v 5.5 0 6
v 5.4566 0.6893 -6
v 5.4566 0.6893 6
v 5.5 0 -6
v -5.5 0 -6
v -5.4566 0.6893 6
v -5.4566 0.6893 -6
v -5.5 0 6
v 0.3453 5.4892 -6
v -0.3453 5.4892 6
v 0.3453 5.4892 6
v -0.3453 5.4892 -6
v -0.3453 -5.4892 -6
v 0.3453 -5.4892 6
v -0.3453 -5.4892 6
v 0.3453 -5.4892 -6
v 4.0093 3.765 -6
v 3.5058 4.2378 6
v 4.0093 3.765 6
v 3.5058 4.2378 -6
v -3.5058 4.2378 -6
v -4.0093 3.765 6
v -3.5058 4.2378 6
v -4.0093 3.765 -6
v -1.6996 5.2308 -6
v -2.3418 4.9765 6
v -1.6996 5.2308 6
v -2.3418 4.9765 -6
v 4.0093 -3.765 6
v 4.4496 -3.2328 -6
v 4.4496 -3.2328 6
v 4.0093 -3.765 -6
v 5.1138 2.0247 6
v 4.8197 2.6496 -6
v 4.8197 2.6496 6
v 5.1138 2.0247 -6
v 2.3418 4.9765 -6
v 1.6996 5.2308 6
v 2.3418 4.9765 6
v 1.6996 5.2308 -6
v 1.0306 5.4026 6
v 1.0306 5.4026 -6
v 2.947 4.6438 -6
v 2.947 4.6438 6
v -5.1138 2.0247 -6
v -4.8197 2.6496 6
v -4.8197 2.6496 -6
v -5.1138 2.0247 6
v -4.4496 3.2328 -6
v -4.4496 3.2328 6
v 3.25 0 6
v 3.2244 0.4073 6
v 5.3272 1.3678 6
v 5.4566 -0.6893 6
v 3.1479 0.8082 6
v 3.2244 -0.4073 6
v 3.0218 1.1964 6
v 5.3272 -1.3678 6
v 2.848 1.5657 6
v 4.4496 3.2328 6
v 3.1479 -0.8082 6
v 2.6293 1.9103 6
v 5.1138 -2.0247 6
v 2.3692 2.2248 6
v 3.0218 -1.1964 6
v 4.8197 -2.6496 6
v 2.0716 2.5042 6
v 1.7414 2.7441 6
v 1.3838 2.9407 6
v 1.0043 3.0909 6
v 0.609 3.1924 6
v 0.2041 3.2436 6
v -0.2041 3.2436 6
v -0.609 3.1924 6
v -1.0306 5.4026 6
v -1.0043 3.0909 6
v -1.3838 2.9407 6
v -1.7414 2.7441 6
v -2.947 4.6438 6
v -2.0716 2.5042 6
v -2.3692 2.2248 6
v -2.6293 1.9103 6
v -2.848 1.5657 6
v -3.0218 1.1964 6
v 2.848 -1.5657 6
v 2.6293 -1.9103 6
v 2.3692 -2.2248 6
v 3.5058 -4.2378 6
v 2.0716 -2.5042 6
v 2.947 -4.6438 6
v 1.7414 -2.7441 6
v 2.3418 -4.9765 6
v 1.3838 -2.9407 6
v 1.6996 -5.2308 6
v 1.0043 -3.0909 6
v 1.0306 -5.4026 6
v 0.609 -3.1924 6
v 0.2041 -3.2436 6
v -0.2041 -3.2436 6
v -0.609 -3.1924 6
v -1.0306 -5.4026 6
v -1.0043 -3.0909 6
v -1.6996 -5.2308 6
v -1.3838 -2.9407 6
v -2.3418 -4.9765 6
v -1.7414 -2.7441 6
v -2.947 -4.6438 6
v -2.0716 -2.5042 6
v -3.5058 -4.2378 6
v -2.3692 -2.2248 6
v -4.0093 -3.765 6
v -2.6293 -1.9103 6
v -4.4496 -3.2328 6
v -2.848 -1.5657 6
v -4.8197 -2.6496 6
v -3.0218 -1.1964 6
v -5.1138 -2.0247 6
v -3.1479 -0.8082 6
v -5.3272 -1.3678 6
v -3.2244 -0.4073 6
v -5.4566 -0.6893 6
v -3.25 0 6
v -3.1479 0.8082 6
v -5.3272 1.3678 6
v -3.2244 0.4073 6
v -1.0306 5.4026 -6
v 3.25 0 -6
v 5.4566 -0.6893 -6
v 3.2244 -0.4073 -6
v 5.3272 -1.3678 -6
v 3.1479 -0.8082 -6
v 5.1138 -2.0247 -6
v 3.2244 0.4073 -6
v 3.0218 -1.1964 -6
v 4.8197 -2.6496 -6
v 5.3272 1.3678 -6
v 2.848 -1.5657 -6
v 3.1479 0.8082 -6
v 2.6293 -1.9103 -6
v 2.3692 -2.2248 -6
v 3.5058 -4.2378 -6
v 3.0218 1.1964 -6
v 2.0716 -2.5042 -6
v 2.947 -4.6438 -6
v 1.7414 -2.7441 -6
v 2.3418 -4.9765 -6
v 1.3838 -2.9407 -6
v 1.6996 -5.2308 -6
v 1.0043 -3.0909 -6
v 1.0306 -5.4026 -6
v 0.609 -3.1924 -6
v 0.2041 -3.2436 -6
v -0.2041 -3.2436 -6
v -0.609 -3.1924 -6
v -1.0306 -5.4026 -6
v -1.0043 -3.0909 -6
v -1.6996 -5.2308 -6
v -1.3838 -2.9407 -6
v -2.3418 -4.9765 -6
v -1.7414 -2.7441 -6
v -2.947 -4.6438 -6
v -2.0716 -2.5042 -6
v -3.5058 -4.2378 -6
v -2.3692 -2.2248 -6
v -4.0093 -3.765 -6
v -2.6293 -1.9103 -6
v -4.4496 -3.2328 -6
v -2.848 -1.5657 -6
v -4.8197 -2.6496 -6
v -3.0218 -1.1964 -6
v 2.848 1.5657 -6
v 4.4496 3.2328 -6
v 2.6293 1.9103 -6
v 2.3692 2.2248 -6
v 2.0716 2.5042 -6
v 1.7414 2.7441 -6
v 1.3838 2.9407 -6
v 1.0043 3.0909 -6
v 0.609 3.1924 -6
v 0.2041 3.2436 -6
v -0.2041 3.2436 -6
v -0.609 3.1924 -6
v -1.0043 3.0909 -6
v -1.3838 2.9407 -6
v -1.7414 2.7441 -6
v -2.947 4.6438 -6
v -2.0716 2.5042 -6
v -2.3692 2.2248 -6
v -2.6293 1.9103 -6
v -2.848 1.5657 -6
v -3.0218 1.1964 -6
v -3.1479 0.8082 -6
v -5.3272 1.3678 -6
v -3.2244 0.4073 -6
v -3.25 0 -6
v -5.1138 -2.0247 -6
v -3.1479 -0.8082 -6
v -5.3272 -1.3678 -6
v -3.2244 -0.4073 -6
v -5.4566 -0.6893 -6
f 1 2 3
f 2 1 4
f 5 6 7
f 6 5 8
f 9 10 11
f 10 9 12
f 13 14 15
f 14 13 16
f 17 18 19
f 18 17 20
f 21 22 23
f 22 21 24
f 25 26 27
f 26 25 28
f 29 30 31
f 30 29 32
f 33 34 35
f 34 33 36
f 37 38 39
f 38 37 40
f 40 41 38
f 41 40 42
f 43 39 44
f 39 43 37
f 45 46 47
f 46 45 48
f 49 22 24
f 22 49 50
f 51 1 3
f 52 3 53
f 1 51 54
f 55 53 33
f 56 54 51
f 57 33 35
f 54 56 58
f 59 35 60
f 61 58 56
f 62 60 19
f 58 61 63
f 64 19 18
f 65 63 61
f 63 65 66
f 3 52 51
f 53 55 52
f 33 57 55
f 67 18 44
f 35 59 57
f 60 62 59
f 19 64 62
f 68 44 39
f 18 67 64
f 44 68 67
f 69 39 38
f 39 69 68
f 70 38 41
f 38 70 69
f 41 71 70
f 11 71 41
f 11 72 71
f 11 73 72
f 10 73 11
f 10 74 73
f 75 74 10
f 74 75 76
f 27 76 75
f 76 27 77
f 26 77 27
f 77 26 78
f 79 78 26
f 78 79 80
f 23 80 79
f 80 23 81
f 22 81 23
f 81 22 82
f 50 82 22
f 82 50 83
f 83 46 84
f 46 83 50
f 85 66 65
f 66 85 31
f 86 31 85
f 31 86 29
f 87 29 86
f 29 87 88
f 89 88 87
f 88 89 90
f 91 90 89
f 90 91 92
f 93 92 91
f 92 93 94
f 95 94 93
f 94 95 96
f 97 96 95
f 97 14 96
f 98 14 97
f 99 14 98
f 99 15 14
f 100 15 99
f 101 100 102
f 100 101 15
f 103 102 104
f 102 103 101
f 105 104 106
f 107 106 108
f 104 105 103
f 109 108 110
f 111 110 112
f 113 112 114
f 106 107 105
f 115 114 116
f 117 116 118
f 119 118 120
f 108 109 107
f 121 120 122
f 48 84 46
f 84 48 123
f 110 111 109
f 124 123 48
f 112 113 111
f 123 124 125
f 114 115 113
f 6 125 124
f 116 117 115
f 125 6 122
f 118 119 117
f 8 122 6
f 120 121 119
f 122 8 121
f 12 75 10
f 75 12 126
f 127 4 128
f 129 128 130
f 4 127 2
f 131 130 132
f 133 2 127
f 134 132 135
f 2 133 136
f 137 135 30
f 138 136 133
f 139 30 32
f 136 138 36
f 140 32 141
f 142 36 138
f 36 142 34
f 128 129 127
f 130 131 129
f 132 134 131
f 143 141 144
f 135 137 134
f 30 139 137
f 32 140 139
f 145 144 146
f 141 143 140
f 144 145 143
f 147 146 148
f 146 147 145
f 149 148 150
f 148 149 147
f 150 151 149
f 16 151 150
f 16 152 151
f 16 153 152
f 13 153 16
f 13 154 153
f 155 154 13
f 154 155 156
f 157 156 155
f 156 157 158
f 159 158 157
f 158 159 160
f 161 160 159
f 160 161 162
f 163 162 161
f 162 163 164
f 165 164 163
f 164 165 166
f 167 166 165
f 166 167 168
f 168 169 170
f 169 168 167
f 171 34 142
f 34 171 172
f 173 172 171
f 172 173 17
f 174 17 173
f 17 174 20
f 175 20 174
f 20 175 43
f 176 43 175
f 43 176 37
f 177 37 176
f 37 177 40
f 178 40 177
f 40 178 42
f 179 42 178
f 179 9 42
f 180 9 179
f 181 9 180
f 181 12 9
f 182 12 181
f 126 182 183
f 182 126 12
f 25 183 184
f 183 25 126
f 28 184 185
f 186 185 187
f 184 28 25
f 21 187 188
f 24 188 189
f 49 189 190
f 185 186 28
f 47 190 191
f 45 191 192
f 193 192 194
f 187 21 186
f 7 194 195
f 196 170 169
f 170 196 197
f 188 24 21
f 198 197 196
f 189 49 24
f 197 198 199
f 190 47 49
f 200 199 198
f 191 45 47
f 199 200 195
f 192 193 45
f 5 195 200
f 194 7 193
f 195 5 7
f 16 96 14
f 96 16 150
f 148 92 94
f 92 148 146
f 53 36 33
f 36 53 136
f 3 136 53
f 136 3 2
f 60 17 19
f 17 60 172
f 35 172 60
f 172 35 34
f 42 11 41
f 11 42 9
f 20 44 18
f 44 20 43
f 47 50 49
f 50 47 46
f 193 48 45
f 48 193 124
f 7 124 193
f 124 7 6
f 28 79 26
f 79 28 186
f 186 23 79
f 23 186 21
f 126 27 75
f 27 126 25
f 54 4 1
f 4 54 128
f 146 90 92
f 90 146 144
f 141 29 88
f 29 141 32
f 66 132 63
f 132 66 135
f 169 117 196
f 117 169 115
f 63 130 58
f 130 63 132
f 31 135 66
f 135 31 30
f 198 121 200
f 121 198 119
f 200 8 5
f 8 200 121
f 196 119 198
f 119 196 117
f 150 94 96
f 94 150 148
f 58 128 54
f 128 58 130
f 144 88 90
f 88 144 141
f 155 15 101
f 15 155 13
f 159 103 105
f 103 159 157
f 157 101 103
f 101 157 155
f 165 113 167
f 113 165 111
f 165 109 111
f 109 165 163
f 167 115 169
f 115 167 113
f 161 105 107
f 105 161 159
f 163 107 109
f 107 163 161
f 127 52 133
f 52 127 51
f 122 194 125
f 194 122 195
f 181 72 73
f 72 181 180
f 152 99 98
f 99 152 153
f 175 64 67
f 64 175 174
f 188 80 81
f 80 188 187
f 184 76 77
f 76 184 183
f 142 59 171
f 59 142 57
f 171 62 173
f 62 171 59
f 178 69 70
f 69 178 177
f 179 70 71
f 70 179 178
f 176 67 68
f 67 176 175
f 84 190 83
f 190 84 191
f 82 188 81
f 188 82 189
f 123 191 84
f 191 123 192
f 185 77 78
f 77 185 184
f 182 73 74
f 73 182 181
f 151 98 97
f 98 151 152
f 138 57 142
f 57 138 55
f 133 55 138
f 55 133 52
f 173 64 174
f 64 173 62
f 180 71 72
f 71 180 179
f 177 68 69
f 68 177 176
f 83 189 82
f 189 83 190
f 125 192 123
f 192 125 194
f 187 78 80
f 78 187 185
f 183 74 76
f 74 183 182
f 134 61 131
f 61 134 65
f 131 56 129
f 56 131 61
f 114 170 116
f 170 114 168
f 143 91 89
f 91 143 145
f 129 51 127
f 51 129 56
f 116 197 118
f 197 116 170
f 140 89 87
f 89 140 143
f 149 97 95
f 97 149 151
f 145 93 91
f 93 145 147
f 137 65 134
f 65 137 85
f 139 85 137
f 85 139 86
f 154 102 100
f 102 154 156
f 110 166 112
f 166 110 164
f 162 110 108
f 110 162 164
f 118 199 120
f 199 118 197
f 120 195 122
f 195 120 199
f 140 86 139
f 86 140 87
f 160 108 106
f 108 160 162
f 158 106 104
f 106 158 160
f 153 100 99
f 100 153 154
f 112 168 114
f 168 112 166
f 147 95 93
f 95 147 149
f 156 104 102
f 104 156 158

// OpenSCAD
$fn = 50;


difference() {
	union() {
		translate(v = [0, 0, -6.0000000000]) {
			cylinder(h = 12, r = 5.5000000000);
		}
	}
	union() {
		translate(v = [0, 0, -100.0000000000]) {
			cylinder(h = 200, r = 3.2500000000);
		}
	}
}
